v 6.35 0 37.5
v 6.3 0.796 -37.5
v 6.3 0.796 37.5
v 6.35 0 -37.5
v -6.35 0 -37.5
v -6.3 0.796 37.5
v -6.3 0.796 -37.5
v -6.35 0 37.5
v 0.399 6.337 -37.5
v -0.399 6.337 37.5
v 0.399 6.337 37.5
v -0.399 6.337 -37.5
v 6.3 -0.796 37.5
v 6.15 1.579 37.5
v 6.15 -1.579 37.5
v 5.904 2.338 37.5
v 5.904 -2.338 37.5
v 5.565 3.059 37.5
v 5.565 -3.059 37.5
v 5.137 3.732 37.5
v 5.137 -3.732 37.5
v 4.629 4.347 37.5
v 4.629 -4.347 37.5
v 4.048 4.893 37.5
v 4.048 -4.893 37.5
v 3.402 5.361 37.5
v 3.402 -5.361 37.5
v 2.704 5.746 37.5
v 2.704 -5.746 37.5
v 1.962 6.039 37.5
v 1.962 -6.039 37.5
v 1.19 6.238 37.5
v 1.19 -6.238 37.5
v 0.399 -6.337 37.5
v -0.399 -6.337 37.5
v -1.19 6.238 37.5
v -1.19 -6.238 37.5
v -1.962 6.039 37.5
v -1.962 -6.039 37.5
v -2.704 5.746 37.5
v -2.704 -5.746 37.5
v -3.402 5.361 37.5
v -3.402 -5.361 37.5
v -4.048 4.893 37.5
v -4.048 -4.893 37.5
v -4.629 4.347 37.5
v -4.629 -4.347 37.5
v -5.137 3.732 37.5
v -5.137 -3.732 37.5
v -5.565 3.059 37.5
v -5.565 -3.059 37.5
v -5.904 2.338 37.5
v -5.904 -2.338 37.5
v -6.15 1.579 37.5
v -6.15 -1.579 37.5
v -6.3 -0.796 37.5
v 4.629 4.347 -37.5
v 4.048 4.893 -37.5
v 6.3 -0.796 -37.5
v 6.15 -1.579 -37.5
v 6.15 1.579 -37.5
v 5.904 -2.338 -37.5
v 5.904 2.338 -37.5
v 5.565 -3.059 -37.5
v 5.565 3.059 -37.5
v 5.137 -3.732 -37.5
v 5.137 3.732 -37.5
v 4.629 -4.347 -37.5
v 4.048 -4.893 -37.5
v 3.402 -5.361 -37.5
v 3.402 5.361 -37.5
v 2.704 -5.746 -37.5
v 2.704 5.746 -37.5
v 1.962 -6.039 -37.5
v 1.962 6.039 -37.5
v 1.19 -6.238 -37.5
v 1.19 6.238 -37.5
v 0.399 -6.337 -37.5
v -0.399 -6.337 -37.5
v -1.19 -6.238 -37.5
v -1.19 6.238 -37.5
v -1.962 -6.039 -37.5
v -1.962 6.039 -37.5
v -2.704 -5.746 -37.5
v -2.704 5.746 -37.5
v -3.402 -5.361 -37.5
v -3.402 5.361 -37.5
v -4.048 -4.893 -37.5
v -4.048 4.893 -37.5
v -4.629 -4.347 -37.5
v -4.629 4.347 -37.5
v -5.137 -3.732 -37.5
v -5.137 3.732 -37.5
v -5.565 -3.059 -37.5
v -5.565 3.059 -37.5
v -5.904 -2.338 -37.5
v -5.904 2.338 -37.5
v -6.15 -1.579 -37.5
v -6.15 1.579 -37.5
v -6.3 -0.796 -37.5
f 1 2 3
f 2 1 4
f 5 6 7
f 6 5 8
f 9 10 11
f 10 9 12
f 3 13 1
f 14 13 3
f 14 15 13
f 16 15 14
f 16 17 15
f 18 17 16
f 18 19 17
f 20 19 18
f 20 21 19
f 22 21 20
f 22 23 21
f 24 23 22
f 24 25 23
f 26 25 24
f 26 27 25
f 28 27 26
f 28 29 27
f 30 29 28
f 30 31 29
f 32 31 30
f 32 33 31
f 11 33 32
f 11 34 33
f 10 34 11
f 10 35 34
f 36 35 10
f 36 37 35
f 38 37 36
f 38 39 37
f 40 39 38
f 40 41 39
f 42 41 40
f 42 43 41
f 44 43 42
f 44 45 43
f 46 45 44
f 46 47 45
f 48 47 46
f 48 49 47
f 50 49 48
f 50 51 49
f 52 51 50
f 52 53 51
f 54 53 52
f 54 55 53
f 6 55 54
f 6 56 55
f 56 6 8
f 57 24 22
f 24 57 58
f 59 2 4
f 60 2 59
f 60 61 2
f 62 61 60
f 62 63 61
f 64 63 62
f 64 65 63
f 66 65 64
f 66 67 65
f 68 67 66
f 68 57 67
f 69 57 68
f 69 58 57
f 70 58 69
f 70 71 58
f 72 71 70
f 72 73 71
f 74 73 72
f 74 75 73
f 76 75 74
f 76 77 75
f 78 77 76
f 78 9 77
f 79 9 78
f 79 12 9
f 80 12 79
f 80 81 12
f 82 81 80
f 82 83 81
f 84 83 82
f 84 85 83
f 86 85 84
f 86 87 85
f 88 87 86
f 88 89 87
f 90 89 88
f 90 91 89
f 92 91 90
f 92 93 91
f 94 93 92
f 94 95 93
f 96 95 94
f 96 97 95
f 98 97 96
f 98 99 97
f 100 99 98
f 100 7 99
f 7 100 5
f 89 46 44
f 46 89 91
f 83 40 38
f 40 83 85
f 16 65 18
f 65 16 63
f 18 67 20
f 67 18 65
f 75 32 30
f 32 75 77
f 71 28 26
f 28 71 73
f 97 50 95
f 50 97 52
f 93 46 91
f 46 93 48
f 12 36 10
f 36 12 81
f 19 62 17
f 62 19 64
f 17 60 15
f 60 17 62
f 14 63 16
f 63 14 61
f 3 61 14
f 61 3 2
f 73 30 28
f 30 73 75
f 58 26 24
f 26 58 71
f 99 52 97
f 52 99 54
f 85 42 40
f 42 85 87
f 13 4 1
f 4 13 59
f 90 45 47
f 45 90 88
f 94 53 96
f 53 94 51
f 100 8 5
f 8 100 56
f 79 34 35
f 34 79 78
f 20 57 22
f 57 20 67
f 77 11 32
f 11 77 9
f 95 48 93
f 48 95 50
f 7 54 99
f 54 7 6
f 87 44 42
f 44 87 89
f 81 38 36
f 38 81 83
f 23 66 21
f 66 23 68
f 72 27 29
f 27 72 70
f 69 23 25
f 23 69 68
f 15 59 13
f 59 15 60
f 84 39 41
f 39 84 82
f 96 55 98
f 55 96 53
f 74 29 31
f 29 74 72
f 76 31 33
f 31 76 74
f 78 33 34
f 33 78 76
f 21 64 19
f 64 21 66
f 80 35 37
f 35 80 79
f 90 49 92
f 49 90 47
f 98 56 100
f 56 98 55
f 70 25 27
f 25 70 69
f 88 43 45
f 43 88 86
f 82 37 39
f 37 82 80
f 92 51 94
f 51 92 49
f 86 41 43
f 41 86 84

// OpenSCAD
$fn = 50;


difference() {
	union() {
		translate(v = [0, 0, -37.5000000000]) {
			cylinder(h = 75, r = 6.3500000000);
		}
	}
	union() {
		translate(v = [0, 0, -100.0000000000]) {
			cylinder(h = 200, r = 0);
		}
	}
}
